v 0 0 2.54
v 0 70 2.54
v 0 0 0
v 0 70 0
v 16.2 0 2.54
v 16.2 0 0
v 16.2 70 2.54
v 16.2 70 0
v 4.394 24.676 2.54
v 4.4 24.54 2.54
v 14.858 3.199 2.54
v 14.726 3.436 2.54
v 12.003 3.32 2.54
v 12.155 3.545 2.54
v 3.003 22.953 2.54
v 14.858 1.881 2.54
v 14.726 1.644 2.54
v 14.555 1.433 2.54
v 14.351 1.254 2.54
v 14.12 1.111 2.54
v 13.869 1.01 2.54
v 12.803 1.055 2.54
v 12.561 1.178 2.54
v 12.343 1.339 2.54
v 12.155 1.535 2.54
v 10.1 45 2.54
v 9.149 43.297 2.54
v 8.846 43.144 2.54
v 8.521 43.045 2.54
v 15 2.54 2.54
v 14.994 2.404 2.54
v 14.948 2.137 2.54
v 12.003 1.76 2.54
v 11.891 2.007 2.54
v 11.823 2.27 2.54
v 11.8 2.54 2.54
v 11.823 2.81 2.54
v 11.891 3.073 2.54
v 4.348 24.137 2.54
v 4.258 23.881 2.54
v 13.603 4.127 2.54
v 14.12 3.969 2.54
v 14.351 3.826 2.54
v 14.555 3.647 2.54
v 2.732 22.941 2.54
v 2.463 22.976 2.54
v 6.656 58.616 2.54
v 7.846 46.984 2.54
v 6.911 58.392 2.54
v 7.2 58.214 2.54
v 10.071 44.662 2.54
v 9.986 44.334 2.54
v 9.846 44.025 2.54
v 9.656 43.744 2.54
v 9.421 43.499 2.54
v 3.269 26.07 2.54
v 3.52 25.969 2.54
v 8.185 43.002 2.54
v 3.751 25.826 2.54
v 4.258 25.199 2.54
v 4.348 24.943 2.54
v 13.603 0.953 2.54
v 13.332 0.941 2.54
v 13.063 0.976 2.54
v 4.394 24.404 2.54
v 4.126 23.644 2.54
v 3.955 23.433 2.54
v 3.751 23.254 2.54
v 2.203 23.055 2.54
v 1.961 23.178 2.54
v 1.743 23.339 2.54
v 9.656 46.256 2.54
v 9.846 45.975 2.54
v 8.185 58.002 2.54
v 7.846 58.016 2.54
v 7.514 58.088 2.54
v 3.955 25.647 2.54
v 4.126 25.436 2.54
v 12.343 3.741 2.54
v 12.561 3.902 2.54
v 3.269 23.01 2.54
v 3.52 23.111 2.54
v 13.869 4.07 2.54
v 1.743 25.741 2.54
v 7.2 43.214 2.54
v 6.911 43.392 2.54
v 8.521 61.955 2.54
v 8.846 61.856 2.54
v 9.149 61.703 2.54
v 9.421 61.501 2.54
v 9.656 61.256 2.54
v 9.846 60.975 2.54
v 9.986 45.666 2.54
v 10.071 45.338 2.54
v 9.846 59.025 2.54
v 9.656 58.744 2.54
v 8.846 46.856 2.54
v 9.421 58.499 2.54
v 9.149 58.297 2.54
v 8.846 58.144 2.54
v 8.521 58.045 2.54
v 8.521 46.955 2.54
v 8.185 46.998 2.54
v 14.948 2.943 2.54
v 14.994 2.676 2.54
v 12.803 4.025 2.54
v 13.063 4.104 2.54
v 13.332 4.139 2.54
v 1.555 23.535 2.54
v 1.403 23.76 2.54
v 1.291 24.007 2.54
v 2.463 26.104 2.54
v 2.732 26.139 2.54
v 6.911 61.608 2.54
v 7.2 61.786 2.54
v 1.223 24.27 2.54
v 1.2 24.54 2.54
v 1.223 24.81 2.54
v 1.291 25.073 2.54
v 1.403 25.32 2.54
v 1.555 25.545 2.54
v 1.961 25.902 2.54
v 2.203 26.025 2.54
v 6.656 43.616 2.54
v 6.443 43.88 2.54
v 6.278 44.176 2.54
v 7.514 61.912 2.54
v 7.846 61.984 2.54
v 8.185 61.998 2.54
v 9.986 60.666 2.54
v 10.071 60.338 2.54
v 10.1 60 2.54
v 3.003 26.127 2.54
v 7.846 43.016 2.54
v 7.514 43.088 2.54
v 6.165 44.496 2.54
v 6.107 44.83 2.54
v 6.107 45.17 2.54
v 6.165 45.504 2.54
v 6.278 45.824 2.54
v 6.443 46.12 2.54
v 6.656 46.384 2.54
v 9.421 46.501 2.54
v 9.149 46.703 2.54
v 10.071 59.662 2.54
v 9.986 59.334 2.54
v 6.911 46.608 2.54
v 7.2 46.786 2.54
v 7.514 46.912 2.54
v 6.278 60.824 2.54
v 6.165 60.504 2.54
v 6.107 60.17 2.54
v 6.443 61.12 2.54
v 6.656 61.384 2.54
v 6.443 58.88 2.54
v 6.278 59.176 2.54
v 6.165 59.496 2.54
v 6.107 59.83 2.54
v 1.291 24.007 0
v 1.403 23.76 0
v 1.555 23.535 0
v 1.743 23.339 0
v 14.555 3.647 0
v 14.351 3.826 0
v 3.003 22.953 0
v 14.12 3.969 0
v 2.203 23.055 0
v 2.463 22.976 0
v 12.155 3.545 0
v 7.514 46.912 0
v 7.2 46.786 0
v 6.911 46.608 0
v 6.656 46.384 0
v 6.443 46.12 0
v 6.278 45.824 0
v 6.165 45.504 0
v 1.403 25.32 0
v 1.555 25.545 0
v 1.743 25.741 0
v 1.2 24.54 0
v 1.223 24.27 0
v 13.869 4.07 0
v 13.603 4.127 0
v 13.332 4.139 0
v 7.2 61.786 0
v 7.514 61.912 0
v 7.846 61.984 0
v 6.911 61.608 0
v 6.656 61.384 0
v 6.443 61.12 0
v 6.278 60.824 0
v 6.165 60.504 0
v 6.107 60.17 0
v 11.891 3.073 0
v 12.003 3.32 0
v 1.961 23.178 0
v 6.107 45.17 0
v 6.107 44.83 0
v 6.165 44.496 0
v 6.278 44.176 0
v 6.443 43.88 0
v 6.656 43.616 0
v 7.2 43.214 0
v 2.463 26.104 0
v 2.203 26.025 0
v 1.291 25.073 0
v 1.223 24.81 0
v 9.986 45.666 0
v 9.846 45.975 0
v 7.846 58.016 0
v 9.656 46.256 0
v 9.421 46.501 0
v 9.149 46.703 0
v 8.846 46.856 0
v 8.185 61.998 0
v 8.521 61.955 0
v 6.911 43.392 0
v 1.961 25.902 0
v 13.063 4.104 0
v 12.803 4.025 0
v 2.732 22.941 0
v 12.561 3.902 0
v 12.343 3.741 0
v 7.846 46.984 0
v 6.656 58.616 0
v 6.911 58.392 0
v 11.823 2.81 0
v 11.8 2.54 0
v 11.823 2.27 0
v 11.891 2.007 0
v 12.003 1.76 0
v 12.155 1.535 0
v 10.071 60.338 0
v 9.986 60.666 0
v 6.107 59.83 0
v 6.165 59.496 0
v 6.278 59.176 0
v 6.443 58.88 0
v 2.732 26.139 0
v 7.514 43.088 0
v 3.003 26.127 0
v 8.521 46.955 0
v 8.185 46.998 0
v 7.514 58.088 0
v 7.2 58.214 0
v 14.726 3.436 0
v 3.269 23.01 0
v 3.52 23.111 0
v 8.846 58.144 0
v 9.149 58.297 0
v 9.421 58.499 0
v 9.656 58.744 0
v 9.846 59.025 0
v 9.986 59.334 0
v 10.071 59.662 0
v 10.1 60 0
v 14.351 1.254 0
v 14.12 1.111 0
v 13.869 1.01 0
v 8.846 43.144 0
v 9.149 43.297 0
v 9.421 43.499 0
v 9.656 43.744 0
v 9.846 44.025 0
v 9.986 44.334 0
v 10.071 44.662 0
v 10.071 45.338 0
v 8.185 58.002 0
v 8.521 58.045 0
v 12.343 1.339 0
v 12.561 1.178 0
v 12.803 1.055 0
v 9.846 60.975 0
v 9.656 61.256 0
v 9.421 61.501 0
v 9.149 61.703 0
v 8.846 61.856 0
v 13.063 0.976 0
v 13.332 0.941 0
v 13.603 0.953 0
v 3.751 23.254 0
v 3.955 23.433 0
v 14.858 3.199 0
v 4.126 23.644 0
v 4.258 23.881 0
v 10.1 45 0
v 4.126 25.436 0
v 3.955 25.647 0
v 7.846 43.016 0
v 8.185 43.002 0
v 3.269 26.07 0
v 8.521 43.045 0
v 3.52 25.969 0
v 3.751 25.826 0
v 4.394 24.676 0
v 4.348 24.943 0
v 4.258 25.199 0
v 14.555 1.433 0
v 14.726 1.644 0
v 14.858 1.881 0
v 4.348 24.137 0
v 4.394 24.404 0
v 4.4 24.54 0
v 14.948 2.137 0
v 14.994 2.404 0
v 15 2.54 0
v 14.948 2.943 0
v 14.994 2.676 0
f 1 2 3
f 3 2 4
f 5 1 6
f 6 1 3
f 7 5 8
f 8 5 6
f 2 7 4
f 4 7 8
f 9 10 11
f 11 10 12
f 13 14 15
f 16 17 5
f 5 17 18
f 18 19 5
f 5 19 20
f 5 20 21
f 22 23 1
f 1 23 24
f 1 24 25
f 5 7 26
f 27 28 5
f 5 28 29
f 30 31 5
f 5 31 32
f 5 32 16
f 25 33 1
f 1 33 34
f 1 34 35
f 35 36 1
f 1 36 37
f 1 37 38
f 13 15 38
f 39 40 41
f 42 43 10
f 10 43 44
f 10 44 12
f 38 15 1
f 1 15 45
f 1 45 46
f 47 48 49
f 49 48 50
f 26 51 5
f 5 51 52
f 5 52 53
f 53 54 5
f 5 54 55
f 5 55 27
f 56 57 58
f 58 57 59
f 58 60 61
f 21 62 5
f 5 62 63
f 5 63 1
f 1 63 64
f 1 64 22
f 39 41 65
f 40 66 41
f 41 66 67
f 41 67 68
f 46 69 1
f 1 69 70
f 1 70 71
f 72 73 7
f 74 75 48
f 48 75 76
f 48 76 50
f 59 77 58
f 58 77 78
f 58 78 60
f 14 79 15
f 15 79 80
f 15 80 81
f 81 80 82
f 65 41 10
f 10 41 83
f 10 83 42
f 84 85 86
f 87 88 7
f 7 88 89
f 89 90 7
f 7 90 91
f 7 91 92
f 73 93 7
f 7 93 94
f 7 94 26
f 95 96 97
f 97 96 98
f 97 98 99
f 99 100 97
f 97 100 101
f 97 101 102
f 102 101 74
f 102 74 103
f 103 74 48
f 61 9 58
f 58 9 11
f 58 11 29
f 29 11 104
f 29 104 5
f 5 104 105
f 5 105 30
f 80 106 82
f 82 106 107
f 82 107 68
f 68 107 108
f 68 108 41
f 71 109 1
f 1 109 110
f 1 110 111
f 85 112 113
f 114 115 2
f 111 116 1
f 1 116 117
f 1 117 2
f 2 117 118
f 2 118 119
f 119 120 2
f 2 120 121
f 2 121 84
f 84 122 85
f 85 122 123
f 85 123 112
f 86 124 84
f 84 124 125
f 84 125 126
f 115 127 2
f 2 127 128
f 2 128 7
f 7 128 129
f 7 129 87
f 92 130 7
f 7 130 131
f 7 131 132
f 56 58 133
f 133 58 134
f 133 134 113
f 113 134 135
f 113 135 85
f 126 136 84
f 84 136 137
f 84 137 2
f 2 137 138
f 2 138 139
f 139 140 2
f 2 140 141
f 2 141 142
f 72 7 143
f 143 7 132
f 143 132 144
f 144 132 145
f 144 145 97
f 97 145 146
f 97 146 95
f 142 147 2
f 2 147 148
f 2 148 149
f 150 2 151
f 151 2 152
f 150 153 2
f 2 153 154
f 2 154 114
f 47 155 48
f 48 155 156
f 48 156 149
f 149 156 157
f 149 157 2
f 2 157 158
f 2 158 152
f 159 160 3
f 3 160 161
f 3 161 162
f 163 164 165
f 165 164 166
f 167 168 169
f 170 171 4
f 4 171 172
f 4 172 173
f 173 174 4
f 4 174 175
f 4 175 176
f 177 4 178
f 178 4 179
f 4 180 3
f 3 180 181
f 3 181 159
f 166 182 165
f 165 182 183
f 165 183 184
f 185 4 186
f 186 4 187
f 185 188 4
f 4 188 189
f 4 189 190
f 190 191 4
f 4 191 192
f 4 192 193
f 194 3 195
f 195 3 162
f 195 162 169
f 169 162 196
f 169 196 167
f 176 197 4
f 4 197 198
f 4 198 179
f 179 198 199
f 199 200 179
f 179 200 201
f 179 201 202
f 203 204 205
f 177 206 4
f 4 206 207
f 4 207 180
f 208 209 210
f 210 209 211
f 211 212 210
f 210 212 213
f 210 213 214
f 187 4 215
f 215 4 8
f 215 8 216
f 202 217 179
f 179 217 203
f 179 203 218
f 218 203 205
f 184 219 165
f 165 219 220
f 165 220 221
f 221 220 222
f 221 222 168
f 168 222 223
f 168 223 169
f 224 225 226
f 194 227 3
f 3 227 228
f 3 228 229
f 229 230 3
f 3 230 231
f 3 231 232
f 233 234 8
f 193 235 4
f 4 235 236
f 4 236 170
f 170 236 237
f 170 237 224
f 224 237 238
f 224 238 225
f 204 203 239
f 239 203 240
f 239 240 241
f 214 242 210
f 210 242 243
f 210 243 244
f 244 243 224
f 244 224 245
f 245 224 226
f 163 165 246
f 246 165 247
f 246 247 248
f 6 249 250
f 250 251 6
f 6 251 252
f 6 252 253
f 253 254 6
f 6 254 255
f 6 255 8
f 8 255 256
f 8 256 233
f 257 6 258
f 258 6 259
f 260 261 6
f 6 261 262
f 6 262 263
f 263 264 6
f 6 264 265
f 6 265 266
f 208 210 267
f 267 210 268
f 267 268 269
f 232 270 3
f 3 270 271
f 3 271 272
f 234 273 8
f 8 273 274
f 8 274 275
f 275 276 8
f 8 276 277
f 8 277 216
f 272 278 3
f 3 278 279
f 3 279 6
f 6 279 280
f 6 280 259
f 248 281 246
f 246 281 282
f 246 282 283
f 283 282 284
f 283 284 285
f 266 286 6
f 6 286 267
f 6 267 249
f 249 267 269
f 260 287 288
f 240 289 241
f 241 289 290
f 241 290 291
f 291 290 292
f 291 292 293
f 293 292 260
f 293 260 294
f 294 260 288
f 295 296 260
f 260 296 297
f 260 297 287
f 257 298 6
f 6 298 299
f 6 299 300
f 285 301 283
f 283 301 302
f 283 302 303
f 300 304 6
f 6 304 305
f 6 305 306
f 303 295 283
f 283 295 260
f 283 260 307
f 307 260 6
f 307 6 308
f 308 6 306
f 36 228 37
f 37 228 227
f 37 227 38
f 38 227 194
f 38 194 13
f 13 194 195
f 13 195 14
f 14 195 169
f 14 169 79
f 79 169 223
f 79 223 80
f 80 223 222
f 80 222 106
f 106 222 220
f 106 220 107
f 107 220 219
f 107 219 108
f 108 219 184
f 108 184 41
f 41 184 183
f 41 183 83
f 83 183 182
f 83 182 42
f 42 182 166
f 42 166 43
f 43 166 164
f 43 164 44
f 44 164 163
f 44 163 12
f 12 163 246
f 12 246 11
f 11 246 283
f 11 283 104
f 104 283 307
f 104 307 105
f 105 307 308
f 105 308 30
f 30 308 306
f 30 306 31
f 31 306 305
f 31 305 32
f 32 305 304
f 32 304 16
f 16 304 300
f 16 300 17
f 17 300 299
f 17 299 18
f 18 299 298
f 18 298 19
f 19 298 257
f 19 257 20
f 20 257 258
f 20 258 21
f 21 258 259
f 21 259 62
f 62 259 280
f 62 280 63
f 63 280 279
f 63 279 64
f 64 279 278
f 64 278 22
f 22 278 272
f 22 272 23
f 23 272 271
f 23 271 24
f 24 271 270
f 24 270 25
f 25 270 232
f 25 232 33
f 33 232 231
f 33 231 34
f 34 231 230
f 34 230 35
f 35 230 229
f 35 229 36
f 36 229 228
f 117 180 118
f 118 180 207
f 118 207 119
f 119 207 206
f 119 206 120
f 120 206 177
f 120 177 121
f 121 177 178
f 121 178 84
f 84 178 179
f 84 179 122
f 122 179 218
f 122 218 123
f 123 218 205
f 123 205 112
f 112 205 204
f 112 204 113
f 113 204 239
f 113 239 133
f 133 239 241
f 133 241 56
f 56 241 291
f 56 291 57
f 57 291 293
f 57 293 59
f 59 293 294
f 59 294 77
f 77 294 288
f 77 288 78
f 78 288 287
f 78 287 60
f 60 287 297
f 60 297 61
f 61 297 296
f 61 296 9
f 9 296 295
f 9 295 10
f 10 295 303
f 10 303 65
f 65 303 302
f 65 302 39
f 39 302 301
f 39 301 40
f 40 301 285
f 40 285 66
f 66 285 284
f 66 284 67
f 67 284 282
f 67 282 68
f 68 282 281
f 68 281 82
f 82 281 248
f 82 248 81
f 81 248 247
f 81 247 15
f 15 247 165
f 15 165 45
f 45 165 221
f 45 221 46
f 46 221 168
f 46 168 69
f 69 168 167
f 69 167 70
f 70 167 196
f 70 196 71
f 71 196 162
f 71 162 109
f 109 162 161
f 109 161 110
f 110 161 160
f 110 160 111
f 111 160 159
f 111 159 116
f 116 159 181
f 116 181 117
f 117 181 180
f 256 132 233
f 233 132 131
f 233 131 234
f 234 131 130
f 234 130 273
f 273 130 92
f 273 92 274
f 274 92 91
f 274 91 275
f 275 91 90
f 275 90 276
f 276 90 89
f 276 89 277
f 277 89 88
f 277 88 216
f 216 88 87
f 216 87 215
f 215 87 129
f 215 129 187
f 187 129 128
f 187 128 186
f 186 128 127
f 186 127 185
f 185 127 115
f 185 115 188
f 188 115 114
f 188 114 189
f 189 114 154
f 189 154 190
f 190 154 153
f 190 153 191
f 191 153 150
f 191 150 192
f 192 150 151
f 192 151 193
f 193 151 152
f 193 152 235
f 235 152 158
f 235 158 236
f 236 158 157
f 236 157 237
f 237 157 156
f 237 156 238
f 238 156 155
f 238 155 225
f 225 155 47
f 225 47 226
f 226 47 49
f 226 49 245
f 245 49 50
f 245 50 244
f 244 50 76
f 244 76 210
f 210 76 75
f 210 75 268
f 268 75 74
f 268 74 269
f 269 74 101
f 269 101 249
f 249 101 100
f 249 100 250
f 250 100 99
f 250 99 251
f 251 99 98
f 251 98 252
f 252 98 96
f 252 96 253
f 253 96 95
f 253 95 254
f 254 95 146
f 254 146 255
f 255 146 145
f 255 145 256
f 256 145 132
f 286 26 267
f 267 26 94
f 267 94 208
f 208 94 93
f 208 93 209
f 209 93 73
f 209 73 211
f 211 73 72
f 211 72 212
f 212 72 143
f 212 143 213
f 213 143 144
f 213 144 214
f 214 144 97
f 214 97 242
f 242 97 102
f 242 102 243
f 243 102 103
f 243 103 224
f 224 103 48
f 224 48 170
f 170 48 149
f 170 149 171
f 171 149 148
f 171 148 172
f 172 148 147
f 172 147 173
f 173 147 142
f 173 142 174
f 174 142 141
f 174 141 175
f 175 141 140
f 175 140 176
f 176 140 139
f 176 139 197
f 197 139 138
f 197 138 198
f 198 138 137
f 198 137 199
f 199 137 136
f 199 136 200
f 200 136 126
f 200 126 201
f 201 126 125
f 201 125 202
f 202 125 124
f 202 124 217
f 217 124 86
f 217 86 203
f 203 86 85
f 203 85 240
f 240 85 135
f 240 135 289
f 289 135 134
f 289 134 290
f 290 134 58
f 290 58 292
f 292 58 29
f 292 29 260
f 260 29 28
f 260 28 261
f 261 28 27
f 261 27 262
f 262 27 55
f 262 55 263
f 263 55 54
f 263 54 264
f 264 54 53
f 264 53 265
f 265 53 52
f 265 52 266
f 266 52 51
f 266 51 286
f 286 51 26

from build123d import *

# Parameters (mm, degrees)
SKETCH1_W           = 16.2
SKETCH1_H           = 70
BOSS_EXTRUDE1_DEPTH = 2.54
SKETCH4_R           = 1.6
CUT_EXTRUDE1_DEPTH  = 2.54
SKETCH6_R           = 2
CUT_EXTRUDE3_DEPTH  = 3.54


with BuildPart() as part:
    # Sketch1 → Boss-Extrude1 (new body)
    with BuildSketch(Plane.XY):
        with Locations((8.1, 35)):
            Rectangle(SKETCH1_W, SKETCH1_H)
    extrude(amount=BOSS_EXTRUDE1_DEPTH)

    # Sketch4 → Cut-Extrude1 (cut)
    with BuildSketch(Plane(origin=(0, 0, 0), x_dir=(-1, 0, 0), z_dir=(0, 0, -1))):
        with Locations((-13.4, 2.54)):
            Circle(SKETCH4_R)
        with Locations((-2.8, 24.54)):
            Circle(SKETCH4_R)
    extrude(amount=-CUT_EXTRUDE1_DEPTH, mode=Mode.SUBTRACT)

    # Sketch6 → Cut-Extrude3 (cut, through all)
    with BuildSketch(Plane.XY.offset(2.54)):
        with Locations((8.1, 60)):
            Circle(SKETCH6_R)
        with Locations((8.1, 45)):
            Circle(SKETCH6_R)
    extrude(amount=-CUT_EXTRUDE3_DEPTH, mode=Mode.SUBTRACT)


solid = part.part
